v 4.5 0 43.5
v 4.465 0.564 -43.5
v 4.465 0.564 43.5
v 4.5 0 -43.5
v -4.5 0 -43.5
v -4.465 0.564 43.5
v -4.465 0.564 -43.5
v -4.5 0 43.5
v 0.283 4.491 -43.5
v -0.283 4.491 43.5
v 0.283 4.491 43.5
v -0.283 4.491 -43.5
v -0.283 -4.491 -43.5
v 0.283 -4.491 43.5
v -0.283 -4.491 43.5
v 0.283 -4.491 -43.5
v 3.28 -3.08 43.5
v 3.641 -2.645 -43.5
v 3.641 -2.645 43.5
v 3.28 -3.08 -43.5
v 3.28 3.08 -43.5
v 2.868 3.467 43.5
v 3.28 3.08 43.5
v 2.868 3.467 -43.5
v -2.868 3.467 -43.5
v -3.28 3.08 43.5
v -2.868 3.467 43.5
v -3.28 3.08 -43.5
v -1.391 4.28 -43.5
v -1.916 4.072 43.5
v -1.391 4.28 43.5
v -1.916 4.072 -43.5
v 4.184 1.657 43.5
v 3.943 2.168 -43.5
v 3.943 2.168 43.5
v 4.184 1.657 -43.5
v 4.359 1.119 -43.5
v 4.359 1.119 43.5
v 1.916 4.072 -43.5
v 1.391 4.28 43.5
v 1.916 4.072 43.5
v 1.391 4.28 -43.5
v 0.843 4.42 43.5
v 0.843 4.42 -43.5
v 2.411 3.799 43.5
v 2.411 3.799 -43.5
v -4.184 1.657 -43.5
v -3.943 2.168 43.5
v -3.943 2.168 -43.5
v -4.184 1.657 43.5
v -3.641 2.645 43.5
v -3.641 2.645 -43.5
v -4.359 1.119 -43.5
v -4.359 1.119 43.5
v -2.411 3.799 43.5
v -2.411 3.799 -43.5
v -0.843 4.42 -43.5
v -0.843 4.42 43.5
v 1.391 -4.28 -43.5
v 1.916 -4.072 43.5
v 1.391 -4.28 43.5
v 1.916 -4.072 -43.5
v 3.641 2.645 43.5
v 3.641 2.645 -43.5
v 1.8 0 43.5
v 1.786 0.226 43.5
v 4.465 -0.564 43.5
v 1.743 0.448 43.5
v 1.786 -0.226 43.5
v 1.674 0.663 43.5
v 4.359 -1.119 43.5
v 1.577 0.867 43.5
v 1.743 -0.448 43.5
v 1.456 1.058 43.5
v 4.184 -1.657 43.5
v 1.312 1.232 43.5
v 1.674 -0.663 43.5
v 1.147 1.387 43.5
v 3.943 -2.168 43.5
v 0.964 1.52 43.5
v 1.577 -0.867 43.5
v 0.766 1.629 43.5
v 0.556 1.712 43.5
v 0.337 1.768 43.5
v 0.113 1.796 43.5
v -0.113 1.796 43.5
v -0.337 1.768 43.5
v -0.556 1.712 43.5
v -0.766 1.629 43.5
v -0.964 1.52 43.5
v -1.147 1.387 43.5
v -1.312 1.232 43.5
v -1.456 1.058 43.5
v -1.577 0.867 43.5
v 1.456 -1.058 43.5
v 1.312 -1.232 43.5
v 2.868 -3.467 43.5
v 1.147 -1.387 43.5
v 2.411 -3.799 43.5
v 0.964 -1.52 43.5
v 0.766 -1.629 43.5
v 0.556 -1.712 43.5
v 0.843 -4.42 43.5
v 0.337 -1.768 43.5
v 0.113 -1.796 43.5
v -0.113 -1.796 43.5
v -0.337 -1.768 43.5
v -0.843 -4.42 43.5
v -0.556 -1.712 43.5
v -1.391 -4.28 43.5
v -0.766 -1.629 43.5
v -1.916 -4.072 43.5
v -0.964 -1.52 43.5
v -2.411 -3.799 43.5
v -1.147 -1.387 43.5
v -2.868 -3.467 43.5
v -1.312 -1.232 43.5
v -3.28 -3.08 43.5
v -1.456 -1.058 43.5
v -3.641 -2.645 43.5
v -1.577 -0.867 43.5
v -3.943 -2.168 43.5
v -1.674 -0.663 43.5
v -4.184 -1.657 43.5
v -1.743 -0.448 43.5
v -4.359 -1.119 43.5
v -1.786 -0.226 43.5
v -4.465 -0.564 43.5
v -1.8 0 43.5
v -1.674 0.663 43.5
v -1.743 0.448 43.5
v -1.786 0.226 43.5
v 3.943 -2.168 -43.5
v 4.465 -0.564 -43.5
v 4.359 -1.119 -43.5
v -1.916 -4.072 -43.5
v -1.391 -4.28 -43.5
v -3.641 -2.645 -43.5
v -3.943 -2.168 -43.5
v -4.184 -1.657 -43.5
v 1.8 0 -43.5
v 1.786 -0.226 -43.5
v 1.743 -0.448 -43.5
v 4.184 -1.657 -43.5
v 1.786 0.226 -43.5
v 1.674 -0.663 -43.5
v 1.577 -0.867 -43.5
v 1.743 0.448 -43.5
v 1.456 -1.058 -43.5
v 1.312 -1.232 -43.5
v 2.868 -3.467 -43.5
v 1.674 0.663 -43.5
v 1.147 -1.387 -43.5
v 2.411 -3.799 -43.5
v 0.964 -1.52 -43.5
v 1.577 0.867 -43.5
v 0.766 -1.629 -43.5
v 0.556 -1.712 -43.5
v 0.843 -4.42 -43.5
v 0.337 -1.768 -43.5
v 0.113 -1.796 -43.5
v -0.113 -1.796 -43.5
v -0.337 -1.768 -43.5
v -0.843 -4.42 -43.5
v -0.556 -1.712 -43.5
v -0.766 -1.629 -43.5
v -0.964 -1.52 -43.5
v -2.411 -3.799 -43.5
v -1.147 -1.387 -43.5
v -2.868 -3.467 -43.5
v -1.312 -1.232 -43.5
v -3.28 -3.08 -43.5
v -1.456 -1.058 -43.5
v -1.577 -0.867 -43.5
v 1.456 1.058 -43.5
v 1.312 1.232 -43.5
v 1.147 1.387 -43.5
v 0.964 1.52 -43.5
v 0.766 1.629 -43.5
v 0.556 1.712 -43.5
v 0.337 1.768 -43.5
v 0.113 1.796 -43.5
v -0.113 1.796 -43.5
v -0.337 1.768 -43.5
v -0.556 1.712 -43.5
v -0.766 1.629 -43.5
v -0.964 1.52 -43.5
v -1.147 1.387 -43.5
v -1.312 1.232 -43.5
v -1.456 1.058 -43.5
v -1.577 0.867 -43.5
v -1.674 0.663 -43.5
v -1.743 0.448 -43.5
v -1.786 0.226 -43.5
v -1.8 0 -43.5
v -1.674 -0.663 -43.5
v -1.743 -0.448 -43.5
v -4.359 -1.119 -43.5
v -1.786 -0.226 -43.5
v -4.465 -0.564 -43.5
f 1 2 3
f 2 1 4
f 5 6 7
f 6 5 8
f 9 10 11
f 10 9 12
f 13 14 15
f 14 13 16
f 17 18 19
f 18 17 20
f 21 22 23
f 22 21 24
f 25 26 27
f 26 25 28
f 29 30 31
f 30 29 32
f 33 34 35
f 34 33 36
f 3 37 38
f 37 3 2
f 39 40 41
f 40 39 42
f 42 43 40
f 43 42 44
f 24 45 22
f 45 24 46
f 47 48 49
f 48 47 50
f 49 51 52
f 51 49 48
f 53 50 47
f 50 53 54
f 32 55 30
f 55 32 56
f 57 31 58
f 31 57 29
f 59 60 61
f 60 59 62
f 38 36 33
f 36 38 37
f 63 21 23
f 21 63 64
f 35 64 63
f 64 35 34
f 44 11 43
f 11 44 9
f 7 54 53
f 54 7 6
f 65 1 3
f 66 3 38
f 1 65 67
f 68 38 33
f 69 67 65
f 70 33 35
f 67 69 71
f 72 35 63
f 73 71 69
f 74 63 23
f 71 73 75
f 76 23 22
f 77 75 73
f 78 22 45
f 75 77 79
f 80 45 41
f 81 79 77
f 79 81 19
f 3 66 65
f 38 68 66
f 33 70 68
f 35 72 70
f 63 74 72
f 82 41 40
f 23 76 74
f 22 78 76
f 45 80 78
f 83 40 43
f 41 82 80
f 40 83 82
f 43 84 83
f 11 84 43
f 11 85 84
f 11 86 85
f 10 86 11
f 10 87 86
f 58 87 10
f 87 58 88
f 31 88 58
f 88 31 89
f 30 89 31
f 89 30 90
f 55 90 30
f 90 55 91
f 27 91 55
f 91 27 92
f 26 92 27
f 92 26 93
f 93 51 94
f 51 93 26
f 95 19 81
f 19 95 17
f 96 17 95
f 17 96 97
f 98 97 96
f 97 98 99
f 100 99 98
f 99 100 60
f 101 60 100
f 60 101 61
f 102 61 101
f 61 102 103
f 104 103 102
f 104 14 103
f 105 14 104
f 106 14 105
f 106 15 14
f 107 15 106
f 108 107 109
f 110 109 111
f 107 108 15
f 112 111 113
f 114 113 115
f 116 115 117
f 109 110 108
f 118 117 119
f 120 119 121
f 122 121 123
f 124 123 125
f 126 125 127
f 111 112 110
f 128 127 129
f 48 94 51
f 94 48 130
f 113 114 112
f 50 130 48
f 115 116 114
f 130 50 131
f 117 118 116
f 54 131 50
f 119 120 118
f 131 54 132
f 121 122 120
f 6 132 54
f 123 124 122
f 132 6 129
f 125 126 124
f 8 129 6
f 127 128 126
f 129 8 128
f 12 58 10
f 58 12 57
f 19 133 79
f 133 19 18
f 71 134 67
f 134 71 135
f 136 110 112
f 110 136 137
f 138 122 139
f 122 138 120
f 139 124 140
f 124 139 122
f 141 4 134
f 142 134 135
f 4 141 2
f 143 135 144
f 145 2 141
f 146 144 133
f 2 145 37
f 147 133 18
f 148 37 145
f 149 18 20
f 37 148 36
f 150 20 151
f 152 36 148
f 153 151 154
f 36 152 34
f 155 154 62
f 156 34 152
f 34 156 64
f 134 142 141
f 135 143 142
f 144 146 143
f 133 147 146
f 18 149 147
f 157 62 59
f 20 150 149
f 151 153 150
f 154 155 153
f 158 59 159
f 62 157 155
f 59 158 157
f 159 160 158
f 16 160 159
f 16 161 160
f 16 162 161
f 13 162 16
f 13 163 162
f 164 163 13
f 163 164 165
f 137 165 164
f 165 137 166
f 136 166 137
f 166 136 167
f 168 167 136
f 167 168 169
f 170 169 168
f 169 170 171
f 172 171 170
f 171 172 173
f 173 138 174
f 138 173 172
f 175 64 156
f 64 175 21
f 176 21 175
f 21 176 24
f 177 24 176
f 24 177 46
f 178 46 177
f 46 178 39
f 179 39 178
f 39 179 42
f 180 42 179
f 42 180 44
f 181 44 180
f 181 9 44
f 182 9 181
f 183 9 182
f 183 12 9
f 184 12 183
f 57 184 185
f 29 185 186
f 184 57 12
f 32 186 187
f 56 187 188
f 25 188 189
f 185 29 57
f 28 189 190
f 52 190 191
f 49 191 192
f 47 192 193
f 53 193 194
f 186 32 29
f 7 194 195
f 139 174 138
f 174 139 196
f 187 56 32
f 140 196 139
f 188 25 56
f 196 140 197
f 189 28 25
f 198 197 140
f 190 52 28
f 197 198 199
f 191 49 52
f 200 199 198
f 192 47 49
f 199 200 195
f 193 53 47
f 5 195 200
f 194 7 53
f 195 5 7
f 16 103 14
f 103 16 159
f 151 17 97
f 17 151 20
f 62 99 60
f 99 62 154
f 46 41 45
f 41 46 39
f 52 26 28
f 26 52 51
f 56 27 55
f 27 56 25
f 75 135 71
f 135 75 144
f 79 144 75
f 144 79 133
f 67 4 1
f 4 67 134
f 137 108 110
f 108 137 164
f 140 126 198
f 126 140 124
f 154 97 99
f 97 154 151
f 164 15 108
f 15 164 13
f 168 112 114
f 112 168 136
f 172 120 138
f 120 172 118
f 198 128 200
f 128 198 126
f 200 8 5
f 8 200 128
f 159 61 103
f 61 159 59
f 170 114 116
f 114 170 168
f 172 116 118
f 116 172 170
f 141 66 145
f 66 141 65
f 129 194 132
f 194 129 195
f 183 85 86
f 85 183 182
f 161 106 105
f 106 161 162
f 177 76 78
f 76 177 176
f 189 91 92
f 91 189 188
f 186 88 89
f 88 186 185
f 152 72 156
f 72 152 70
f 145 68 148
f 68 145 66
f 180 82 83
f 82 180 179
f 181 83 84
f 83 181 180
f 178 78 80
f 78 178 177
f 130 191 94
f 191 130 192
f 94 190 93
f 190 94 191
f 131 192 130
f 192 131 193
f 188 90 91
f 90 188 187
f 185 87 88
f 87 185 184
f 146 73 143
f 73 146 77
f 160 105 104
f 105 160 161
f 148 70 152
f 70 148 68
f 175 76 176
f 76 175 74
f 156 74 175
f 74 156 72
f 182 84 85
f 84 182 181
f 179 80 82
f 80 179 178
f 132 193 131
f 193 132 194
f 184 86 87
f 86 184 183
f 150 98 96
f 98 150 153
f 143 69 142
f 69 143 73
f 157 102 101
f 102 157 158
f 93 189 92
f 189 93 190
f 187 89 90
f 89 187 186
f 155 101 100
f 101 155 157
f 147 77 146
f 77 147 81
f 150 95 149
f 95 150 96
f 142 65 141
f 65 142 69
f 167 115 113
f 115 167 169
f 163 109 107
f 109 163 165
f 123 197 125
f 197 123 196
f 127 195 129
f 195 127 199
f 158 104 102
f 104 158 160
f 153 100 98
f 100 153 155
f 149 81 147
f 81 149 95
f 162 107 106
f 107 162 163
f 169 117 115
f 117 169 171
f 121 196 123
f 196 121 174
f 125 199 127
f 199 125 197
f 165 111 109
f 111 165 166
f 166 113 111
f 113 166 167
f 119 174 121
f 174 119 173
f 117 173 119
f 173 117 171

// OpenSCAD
$fn = 50;


difference() {
	union() {
		translate(v = [0, 0, -43.5000000000]) {
			cylinder(h = 87, r = 4.5000000000);
		}
	}
	union() {
		translate(v = [0, 0, -100.0000000000]) {
			cylinder(h = 200, r = 1.8000000000);
		}
	}
}
